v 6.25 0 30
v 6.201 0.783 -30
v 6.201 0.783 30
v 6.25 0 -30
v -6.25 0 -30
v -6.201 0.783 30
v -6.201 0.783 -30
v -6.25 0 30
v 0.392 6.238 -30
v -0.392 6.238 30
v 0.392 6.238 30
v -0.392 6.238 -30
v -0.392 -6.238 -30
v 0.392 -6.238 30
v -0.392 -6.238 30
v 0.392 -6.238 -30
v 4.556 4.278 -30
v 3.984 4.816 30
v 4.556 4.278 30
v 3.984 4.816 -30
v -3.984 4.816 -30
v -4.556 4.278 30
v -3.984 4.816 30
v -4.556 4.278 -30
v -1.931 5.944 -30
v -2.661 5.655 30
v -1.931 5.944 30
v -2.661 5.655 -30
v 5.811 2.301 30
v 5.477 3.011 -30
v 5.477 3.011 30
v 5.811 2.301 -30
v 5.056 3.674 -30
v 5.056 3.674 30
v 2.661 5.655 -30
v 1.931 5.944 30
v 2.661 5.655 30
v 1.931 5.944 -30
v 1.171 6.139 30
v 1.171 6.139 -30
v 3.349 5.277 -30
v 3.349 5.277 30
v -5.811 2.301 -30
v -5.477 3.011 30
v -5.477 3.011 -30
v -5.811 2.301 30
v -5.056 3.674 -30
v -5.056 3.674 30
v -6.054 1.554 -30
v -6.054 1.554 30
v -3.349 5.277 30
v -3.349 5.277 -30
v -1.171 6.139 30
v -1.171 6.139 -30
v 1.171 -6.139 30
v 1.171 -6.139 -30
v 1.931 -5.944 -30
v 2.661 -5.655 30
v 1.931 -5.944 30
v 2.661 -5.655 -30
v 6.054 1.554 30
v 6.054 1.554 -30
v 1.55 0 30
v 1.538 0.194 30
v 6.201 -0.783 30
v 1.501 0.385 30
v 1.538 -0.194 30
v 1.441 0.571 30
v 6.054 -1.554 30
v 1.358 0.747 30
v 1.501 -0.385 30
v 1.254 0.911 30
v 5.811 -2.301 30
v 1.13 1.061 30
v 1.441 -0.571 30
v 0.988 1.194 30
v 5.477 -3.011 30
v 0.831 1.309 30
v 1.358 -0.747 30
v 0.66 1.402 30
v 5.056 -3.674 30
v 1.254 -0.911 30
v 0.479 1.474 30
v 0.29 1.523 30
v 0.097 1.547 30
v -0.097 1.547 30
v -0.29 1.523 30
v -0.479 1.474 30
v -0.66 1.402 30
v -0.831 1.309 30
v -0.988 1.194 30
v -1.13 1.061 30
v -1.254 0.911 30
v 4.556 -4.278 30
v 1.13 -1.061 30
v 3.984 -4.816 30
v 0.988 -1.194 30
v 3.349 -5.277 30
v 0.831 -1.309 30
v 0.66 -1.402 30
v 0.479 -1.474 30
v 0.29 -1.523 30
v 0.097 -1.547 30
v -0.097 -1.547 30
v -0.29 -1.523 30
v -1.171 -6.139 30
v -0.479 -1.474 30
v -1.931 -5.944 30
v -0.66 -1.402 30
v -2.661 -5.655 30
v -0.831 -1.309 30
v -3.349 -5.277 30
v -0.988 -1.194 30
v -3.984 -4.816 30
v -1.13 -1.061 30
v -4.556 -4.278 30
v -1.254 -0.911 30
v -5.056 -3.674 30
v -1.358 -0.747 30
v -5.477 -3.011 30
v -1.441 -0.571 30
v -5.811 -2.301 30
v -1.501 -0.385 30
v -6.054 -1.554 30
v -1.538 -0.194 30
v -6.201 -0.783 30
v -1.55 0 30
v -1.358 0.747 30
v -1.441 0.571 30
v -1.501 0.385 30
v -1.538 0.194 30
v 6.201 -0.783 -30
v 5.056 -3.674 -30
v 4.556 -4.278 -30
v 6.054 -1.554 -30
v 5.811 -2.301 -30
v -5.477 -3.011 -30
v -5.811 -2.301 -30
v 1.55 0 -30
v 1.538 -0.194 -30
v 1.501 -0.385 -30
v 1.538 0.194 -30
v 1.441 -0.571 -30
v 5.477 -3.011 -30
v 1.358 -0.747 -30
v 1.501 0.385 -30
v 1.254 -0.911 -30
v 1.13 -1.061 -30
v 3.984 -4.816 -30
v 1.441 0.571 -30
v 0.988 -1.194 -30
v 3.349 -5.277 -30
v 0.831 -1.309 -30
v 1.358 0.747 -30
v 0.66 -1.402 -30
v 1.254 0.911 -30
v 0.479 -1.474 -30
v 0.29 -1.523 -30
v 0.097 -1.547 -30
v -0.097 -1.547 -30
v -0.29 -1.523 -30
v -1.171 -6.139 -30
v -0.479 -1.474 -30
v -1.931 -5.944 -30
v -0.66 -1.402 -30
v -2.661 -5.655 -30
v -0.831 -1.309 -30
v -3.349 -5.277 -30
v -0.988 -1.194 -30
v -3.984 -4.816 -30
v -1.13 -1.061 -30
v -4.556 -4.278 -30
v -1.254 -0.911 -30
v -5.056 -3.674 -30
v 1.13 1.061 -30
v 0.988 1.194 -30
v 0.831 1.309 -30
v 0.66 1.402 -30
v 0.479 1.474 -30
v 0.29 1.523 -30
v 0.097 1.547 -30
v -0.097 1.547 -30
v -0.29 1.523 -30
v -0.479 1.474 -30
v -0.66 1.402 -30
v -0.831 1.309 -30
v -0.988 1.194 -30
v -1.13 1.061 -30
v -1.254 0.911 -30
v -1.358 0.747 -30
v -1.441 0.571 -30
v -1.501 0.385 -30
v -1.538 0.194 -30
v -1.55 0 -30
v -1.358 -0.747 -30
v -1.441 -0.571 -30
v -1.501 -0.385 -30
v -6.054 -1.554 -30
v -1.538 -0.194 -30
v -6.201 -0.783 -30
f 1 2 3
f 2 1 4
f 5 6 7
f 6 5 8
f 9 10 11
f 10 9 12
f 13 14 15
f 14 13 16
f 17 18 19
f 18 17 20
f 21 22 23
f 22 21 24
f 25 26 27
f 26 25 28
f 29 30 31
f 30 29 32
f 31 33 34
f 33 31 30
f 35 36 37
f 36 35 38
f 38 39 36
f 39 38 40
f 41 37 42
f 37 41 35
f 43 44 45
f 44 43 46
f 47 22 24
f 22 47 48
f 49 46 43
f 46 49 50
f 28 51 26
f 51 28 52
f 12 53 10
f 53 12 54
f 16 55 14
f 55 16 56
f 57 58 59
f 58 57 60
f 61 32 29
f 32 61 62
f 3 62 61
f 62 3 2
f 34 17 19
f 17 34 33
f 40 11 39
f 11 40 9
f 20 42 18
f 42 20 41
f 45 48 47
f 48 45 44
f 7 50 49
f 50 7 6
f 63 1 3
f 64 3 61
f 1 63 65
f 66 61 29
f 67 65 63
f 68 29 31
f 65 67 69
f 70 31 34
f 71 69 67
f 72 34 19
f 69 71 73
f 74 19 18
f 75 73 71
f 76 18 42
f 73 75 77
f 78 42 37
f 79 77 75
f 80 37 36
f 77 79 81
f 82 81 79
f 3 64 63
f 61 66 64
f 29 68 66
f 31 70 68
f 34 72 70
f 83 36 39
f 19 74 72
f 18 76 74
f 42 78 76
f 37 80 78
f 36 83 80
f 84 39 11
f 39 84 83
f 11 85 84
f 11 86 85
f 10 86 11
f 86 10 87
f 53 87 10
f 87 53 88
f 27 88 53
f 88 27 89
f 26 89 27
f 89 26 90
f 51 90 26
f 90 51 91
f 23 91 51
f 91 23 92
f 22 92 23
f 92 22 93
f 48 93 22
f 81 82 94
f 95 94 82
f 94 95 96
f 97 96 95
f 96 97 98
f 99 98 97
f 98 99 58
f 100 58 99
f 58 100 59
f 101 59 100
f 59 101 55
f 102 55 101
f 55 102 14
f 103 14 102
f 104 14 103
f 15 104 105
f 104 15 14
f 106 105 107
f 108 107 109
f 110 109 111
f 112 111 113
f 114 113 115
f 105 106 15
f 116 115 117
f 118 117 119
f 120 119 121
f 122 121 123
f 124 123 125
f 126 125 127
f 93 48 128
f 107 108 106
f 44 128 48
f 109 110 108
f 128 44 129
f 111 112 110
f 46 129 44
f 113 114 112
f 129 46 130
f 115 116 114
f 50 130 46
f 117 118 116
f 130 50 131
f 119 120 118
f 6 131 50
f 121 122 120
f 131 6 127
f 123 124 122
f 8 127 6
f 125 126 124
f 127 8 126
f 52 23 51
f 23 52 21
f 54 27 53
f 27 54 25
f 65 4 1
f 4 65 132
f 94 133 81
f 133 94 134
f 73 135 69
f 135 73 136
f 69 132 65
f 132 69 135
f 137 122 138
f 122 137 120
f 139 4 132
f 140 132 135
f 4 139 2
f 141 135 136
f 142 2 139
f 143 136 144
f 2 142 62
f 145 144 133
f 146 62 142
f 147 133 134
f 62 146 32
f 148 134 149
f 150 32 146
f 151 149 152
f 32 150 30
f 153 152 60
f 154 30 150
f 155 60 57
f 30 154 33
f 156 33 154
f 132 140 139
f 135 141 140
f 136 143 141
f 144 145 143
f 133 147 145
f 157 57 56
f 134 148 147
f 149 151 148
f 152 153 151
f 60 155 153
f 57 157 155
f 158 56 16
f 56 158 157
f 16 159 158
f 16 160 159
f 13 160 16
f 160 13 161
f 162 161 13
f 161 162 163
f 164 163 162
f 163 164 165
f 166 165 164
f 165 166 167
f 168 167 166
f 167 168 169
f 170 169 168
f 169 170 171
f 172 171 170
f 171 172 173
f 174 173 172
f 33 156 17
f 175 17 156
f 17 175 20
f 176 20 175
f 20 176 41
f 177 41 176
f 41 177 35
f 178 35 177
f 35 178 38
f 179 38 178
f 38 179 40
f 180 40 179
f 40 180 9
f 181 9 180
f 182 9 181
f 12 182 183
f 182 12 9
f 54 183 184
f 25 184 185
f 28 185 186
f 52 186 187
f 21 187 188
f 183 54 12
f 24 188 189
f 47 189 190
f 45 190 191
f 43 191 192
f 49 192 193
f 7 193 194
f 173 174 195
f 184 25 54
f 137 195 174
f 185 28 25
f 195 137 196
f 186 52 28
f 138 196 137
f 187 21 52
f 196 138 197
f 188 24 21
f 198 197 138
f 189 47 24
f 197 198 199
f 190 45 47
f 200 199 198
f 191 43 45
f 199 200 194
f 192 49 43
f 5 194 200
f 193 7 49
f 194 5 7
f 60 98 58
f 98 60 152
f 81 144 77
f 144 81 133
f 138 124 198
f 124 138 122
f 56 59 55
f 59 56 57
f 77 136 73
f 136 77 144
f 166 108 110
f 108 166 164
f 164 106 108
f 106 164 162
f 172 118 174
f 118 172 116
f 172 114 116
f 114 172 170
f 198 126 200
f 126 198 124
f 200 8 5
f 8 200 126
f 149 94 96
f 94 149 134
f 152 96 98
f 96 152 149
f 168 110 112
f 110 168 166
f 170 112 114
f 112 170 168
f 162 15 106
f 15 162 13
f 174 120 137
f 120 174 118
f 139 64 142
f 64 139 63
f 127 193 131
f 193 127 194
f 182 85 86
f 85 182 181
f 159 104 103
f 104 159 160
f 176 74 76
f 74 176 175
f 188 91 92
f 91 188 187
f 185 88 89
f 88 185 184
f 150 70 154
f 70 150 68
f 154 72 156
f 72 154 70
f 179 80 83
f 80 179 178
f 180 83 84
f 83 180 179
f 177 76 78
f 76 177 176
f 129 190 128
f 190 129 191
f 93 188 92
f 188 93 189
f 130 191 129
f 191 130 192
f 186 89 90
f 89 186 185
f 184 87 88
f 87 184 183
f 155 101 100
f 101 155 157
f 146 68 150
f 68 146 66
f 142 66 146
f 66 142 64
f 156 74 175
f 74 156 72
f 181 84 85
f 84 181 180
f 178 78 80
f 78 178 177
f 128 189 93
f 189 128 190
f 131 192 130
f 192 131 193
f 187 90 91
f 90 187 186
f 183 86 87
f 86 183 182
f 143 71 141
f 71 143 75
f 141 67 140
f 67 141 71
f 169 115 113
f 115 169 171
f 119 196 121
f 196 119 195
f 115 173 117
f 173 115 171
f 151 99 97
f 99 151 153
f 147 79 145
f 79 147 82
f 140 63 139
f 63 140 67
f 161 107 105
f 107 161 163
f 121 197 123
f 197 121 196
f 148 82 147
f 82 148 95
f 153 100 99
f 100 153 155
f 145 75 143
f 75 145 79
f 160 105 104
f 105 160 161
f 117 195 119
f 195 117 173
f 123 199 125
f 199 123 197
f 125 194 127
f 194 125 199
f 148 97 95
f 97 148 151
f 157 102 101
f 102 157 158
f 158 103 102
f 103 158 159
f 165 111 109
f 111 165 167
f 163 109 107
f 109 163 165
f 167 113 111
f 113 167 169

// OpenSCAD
$fn = 50;


difference() {
	union() {
		translate(v = [0, 0, -30.0000000000]) {
			cylinder(h = 60, r = 6.2500000000);
		}
	}
	union() {
		translate(v = [0, 0, -100.0000000000]) {
			cylinder(h = 200, r = 1.5500000000);
		}
	}
}
